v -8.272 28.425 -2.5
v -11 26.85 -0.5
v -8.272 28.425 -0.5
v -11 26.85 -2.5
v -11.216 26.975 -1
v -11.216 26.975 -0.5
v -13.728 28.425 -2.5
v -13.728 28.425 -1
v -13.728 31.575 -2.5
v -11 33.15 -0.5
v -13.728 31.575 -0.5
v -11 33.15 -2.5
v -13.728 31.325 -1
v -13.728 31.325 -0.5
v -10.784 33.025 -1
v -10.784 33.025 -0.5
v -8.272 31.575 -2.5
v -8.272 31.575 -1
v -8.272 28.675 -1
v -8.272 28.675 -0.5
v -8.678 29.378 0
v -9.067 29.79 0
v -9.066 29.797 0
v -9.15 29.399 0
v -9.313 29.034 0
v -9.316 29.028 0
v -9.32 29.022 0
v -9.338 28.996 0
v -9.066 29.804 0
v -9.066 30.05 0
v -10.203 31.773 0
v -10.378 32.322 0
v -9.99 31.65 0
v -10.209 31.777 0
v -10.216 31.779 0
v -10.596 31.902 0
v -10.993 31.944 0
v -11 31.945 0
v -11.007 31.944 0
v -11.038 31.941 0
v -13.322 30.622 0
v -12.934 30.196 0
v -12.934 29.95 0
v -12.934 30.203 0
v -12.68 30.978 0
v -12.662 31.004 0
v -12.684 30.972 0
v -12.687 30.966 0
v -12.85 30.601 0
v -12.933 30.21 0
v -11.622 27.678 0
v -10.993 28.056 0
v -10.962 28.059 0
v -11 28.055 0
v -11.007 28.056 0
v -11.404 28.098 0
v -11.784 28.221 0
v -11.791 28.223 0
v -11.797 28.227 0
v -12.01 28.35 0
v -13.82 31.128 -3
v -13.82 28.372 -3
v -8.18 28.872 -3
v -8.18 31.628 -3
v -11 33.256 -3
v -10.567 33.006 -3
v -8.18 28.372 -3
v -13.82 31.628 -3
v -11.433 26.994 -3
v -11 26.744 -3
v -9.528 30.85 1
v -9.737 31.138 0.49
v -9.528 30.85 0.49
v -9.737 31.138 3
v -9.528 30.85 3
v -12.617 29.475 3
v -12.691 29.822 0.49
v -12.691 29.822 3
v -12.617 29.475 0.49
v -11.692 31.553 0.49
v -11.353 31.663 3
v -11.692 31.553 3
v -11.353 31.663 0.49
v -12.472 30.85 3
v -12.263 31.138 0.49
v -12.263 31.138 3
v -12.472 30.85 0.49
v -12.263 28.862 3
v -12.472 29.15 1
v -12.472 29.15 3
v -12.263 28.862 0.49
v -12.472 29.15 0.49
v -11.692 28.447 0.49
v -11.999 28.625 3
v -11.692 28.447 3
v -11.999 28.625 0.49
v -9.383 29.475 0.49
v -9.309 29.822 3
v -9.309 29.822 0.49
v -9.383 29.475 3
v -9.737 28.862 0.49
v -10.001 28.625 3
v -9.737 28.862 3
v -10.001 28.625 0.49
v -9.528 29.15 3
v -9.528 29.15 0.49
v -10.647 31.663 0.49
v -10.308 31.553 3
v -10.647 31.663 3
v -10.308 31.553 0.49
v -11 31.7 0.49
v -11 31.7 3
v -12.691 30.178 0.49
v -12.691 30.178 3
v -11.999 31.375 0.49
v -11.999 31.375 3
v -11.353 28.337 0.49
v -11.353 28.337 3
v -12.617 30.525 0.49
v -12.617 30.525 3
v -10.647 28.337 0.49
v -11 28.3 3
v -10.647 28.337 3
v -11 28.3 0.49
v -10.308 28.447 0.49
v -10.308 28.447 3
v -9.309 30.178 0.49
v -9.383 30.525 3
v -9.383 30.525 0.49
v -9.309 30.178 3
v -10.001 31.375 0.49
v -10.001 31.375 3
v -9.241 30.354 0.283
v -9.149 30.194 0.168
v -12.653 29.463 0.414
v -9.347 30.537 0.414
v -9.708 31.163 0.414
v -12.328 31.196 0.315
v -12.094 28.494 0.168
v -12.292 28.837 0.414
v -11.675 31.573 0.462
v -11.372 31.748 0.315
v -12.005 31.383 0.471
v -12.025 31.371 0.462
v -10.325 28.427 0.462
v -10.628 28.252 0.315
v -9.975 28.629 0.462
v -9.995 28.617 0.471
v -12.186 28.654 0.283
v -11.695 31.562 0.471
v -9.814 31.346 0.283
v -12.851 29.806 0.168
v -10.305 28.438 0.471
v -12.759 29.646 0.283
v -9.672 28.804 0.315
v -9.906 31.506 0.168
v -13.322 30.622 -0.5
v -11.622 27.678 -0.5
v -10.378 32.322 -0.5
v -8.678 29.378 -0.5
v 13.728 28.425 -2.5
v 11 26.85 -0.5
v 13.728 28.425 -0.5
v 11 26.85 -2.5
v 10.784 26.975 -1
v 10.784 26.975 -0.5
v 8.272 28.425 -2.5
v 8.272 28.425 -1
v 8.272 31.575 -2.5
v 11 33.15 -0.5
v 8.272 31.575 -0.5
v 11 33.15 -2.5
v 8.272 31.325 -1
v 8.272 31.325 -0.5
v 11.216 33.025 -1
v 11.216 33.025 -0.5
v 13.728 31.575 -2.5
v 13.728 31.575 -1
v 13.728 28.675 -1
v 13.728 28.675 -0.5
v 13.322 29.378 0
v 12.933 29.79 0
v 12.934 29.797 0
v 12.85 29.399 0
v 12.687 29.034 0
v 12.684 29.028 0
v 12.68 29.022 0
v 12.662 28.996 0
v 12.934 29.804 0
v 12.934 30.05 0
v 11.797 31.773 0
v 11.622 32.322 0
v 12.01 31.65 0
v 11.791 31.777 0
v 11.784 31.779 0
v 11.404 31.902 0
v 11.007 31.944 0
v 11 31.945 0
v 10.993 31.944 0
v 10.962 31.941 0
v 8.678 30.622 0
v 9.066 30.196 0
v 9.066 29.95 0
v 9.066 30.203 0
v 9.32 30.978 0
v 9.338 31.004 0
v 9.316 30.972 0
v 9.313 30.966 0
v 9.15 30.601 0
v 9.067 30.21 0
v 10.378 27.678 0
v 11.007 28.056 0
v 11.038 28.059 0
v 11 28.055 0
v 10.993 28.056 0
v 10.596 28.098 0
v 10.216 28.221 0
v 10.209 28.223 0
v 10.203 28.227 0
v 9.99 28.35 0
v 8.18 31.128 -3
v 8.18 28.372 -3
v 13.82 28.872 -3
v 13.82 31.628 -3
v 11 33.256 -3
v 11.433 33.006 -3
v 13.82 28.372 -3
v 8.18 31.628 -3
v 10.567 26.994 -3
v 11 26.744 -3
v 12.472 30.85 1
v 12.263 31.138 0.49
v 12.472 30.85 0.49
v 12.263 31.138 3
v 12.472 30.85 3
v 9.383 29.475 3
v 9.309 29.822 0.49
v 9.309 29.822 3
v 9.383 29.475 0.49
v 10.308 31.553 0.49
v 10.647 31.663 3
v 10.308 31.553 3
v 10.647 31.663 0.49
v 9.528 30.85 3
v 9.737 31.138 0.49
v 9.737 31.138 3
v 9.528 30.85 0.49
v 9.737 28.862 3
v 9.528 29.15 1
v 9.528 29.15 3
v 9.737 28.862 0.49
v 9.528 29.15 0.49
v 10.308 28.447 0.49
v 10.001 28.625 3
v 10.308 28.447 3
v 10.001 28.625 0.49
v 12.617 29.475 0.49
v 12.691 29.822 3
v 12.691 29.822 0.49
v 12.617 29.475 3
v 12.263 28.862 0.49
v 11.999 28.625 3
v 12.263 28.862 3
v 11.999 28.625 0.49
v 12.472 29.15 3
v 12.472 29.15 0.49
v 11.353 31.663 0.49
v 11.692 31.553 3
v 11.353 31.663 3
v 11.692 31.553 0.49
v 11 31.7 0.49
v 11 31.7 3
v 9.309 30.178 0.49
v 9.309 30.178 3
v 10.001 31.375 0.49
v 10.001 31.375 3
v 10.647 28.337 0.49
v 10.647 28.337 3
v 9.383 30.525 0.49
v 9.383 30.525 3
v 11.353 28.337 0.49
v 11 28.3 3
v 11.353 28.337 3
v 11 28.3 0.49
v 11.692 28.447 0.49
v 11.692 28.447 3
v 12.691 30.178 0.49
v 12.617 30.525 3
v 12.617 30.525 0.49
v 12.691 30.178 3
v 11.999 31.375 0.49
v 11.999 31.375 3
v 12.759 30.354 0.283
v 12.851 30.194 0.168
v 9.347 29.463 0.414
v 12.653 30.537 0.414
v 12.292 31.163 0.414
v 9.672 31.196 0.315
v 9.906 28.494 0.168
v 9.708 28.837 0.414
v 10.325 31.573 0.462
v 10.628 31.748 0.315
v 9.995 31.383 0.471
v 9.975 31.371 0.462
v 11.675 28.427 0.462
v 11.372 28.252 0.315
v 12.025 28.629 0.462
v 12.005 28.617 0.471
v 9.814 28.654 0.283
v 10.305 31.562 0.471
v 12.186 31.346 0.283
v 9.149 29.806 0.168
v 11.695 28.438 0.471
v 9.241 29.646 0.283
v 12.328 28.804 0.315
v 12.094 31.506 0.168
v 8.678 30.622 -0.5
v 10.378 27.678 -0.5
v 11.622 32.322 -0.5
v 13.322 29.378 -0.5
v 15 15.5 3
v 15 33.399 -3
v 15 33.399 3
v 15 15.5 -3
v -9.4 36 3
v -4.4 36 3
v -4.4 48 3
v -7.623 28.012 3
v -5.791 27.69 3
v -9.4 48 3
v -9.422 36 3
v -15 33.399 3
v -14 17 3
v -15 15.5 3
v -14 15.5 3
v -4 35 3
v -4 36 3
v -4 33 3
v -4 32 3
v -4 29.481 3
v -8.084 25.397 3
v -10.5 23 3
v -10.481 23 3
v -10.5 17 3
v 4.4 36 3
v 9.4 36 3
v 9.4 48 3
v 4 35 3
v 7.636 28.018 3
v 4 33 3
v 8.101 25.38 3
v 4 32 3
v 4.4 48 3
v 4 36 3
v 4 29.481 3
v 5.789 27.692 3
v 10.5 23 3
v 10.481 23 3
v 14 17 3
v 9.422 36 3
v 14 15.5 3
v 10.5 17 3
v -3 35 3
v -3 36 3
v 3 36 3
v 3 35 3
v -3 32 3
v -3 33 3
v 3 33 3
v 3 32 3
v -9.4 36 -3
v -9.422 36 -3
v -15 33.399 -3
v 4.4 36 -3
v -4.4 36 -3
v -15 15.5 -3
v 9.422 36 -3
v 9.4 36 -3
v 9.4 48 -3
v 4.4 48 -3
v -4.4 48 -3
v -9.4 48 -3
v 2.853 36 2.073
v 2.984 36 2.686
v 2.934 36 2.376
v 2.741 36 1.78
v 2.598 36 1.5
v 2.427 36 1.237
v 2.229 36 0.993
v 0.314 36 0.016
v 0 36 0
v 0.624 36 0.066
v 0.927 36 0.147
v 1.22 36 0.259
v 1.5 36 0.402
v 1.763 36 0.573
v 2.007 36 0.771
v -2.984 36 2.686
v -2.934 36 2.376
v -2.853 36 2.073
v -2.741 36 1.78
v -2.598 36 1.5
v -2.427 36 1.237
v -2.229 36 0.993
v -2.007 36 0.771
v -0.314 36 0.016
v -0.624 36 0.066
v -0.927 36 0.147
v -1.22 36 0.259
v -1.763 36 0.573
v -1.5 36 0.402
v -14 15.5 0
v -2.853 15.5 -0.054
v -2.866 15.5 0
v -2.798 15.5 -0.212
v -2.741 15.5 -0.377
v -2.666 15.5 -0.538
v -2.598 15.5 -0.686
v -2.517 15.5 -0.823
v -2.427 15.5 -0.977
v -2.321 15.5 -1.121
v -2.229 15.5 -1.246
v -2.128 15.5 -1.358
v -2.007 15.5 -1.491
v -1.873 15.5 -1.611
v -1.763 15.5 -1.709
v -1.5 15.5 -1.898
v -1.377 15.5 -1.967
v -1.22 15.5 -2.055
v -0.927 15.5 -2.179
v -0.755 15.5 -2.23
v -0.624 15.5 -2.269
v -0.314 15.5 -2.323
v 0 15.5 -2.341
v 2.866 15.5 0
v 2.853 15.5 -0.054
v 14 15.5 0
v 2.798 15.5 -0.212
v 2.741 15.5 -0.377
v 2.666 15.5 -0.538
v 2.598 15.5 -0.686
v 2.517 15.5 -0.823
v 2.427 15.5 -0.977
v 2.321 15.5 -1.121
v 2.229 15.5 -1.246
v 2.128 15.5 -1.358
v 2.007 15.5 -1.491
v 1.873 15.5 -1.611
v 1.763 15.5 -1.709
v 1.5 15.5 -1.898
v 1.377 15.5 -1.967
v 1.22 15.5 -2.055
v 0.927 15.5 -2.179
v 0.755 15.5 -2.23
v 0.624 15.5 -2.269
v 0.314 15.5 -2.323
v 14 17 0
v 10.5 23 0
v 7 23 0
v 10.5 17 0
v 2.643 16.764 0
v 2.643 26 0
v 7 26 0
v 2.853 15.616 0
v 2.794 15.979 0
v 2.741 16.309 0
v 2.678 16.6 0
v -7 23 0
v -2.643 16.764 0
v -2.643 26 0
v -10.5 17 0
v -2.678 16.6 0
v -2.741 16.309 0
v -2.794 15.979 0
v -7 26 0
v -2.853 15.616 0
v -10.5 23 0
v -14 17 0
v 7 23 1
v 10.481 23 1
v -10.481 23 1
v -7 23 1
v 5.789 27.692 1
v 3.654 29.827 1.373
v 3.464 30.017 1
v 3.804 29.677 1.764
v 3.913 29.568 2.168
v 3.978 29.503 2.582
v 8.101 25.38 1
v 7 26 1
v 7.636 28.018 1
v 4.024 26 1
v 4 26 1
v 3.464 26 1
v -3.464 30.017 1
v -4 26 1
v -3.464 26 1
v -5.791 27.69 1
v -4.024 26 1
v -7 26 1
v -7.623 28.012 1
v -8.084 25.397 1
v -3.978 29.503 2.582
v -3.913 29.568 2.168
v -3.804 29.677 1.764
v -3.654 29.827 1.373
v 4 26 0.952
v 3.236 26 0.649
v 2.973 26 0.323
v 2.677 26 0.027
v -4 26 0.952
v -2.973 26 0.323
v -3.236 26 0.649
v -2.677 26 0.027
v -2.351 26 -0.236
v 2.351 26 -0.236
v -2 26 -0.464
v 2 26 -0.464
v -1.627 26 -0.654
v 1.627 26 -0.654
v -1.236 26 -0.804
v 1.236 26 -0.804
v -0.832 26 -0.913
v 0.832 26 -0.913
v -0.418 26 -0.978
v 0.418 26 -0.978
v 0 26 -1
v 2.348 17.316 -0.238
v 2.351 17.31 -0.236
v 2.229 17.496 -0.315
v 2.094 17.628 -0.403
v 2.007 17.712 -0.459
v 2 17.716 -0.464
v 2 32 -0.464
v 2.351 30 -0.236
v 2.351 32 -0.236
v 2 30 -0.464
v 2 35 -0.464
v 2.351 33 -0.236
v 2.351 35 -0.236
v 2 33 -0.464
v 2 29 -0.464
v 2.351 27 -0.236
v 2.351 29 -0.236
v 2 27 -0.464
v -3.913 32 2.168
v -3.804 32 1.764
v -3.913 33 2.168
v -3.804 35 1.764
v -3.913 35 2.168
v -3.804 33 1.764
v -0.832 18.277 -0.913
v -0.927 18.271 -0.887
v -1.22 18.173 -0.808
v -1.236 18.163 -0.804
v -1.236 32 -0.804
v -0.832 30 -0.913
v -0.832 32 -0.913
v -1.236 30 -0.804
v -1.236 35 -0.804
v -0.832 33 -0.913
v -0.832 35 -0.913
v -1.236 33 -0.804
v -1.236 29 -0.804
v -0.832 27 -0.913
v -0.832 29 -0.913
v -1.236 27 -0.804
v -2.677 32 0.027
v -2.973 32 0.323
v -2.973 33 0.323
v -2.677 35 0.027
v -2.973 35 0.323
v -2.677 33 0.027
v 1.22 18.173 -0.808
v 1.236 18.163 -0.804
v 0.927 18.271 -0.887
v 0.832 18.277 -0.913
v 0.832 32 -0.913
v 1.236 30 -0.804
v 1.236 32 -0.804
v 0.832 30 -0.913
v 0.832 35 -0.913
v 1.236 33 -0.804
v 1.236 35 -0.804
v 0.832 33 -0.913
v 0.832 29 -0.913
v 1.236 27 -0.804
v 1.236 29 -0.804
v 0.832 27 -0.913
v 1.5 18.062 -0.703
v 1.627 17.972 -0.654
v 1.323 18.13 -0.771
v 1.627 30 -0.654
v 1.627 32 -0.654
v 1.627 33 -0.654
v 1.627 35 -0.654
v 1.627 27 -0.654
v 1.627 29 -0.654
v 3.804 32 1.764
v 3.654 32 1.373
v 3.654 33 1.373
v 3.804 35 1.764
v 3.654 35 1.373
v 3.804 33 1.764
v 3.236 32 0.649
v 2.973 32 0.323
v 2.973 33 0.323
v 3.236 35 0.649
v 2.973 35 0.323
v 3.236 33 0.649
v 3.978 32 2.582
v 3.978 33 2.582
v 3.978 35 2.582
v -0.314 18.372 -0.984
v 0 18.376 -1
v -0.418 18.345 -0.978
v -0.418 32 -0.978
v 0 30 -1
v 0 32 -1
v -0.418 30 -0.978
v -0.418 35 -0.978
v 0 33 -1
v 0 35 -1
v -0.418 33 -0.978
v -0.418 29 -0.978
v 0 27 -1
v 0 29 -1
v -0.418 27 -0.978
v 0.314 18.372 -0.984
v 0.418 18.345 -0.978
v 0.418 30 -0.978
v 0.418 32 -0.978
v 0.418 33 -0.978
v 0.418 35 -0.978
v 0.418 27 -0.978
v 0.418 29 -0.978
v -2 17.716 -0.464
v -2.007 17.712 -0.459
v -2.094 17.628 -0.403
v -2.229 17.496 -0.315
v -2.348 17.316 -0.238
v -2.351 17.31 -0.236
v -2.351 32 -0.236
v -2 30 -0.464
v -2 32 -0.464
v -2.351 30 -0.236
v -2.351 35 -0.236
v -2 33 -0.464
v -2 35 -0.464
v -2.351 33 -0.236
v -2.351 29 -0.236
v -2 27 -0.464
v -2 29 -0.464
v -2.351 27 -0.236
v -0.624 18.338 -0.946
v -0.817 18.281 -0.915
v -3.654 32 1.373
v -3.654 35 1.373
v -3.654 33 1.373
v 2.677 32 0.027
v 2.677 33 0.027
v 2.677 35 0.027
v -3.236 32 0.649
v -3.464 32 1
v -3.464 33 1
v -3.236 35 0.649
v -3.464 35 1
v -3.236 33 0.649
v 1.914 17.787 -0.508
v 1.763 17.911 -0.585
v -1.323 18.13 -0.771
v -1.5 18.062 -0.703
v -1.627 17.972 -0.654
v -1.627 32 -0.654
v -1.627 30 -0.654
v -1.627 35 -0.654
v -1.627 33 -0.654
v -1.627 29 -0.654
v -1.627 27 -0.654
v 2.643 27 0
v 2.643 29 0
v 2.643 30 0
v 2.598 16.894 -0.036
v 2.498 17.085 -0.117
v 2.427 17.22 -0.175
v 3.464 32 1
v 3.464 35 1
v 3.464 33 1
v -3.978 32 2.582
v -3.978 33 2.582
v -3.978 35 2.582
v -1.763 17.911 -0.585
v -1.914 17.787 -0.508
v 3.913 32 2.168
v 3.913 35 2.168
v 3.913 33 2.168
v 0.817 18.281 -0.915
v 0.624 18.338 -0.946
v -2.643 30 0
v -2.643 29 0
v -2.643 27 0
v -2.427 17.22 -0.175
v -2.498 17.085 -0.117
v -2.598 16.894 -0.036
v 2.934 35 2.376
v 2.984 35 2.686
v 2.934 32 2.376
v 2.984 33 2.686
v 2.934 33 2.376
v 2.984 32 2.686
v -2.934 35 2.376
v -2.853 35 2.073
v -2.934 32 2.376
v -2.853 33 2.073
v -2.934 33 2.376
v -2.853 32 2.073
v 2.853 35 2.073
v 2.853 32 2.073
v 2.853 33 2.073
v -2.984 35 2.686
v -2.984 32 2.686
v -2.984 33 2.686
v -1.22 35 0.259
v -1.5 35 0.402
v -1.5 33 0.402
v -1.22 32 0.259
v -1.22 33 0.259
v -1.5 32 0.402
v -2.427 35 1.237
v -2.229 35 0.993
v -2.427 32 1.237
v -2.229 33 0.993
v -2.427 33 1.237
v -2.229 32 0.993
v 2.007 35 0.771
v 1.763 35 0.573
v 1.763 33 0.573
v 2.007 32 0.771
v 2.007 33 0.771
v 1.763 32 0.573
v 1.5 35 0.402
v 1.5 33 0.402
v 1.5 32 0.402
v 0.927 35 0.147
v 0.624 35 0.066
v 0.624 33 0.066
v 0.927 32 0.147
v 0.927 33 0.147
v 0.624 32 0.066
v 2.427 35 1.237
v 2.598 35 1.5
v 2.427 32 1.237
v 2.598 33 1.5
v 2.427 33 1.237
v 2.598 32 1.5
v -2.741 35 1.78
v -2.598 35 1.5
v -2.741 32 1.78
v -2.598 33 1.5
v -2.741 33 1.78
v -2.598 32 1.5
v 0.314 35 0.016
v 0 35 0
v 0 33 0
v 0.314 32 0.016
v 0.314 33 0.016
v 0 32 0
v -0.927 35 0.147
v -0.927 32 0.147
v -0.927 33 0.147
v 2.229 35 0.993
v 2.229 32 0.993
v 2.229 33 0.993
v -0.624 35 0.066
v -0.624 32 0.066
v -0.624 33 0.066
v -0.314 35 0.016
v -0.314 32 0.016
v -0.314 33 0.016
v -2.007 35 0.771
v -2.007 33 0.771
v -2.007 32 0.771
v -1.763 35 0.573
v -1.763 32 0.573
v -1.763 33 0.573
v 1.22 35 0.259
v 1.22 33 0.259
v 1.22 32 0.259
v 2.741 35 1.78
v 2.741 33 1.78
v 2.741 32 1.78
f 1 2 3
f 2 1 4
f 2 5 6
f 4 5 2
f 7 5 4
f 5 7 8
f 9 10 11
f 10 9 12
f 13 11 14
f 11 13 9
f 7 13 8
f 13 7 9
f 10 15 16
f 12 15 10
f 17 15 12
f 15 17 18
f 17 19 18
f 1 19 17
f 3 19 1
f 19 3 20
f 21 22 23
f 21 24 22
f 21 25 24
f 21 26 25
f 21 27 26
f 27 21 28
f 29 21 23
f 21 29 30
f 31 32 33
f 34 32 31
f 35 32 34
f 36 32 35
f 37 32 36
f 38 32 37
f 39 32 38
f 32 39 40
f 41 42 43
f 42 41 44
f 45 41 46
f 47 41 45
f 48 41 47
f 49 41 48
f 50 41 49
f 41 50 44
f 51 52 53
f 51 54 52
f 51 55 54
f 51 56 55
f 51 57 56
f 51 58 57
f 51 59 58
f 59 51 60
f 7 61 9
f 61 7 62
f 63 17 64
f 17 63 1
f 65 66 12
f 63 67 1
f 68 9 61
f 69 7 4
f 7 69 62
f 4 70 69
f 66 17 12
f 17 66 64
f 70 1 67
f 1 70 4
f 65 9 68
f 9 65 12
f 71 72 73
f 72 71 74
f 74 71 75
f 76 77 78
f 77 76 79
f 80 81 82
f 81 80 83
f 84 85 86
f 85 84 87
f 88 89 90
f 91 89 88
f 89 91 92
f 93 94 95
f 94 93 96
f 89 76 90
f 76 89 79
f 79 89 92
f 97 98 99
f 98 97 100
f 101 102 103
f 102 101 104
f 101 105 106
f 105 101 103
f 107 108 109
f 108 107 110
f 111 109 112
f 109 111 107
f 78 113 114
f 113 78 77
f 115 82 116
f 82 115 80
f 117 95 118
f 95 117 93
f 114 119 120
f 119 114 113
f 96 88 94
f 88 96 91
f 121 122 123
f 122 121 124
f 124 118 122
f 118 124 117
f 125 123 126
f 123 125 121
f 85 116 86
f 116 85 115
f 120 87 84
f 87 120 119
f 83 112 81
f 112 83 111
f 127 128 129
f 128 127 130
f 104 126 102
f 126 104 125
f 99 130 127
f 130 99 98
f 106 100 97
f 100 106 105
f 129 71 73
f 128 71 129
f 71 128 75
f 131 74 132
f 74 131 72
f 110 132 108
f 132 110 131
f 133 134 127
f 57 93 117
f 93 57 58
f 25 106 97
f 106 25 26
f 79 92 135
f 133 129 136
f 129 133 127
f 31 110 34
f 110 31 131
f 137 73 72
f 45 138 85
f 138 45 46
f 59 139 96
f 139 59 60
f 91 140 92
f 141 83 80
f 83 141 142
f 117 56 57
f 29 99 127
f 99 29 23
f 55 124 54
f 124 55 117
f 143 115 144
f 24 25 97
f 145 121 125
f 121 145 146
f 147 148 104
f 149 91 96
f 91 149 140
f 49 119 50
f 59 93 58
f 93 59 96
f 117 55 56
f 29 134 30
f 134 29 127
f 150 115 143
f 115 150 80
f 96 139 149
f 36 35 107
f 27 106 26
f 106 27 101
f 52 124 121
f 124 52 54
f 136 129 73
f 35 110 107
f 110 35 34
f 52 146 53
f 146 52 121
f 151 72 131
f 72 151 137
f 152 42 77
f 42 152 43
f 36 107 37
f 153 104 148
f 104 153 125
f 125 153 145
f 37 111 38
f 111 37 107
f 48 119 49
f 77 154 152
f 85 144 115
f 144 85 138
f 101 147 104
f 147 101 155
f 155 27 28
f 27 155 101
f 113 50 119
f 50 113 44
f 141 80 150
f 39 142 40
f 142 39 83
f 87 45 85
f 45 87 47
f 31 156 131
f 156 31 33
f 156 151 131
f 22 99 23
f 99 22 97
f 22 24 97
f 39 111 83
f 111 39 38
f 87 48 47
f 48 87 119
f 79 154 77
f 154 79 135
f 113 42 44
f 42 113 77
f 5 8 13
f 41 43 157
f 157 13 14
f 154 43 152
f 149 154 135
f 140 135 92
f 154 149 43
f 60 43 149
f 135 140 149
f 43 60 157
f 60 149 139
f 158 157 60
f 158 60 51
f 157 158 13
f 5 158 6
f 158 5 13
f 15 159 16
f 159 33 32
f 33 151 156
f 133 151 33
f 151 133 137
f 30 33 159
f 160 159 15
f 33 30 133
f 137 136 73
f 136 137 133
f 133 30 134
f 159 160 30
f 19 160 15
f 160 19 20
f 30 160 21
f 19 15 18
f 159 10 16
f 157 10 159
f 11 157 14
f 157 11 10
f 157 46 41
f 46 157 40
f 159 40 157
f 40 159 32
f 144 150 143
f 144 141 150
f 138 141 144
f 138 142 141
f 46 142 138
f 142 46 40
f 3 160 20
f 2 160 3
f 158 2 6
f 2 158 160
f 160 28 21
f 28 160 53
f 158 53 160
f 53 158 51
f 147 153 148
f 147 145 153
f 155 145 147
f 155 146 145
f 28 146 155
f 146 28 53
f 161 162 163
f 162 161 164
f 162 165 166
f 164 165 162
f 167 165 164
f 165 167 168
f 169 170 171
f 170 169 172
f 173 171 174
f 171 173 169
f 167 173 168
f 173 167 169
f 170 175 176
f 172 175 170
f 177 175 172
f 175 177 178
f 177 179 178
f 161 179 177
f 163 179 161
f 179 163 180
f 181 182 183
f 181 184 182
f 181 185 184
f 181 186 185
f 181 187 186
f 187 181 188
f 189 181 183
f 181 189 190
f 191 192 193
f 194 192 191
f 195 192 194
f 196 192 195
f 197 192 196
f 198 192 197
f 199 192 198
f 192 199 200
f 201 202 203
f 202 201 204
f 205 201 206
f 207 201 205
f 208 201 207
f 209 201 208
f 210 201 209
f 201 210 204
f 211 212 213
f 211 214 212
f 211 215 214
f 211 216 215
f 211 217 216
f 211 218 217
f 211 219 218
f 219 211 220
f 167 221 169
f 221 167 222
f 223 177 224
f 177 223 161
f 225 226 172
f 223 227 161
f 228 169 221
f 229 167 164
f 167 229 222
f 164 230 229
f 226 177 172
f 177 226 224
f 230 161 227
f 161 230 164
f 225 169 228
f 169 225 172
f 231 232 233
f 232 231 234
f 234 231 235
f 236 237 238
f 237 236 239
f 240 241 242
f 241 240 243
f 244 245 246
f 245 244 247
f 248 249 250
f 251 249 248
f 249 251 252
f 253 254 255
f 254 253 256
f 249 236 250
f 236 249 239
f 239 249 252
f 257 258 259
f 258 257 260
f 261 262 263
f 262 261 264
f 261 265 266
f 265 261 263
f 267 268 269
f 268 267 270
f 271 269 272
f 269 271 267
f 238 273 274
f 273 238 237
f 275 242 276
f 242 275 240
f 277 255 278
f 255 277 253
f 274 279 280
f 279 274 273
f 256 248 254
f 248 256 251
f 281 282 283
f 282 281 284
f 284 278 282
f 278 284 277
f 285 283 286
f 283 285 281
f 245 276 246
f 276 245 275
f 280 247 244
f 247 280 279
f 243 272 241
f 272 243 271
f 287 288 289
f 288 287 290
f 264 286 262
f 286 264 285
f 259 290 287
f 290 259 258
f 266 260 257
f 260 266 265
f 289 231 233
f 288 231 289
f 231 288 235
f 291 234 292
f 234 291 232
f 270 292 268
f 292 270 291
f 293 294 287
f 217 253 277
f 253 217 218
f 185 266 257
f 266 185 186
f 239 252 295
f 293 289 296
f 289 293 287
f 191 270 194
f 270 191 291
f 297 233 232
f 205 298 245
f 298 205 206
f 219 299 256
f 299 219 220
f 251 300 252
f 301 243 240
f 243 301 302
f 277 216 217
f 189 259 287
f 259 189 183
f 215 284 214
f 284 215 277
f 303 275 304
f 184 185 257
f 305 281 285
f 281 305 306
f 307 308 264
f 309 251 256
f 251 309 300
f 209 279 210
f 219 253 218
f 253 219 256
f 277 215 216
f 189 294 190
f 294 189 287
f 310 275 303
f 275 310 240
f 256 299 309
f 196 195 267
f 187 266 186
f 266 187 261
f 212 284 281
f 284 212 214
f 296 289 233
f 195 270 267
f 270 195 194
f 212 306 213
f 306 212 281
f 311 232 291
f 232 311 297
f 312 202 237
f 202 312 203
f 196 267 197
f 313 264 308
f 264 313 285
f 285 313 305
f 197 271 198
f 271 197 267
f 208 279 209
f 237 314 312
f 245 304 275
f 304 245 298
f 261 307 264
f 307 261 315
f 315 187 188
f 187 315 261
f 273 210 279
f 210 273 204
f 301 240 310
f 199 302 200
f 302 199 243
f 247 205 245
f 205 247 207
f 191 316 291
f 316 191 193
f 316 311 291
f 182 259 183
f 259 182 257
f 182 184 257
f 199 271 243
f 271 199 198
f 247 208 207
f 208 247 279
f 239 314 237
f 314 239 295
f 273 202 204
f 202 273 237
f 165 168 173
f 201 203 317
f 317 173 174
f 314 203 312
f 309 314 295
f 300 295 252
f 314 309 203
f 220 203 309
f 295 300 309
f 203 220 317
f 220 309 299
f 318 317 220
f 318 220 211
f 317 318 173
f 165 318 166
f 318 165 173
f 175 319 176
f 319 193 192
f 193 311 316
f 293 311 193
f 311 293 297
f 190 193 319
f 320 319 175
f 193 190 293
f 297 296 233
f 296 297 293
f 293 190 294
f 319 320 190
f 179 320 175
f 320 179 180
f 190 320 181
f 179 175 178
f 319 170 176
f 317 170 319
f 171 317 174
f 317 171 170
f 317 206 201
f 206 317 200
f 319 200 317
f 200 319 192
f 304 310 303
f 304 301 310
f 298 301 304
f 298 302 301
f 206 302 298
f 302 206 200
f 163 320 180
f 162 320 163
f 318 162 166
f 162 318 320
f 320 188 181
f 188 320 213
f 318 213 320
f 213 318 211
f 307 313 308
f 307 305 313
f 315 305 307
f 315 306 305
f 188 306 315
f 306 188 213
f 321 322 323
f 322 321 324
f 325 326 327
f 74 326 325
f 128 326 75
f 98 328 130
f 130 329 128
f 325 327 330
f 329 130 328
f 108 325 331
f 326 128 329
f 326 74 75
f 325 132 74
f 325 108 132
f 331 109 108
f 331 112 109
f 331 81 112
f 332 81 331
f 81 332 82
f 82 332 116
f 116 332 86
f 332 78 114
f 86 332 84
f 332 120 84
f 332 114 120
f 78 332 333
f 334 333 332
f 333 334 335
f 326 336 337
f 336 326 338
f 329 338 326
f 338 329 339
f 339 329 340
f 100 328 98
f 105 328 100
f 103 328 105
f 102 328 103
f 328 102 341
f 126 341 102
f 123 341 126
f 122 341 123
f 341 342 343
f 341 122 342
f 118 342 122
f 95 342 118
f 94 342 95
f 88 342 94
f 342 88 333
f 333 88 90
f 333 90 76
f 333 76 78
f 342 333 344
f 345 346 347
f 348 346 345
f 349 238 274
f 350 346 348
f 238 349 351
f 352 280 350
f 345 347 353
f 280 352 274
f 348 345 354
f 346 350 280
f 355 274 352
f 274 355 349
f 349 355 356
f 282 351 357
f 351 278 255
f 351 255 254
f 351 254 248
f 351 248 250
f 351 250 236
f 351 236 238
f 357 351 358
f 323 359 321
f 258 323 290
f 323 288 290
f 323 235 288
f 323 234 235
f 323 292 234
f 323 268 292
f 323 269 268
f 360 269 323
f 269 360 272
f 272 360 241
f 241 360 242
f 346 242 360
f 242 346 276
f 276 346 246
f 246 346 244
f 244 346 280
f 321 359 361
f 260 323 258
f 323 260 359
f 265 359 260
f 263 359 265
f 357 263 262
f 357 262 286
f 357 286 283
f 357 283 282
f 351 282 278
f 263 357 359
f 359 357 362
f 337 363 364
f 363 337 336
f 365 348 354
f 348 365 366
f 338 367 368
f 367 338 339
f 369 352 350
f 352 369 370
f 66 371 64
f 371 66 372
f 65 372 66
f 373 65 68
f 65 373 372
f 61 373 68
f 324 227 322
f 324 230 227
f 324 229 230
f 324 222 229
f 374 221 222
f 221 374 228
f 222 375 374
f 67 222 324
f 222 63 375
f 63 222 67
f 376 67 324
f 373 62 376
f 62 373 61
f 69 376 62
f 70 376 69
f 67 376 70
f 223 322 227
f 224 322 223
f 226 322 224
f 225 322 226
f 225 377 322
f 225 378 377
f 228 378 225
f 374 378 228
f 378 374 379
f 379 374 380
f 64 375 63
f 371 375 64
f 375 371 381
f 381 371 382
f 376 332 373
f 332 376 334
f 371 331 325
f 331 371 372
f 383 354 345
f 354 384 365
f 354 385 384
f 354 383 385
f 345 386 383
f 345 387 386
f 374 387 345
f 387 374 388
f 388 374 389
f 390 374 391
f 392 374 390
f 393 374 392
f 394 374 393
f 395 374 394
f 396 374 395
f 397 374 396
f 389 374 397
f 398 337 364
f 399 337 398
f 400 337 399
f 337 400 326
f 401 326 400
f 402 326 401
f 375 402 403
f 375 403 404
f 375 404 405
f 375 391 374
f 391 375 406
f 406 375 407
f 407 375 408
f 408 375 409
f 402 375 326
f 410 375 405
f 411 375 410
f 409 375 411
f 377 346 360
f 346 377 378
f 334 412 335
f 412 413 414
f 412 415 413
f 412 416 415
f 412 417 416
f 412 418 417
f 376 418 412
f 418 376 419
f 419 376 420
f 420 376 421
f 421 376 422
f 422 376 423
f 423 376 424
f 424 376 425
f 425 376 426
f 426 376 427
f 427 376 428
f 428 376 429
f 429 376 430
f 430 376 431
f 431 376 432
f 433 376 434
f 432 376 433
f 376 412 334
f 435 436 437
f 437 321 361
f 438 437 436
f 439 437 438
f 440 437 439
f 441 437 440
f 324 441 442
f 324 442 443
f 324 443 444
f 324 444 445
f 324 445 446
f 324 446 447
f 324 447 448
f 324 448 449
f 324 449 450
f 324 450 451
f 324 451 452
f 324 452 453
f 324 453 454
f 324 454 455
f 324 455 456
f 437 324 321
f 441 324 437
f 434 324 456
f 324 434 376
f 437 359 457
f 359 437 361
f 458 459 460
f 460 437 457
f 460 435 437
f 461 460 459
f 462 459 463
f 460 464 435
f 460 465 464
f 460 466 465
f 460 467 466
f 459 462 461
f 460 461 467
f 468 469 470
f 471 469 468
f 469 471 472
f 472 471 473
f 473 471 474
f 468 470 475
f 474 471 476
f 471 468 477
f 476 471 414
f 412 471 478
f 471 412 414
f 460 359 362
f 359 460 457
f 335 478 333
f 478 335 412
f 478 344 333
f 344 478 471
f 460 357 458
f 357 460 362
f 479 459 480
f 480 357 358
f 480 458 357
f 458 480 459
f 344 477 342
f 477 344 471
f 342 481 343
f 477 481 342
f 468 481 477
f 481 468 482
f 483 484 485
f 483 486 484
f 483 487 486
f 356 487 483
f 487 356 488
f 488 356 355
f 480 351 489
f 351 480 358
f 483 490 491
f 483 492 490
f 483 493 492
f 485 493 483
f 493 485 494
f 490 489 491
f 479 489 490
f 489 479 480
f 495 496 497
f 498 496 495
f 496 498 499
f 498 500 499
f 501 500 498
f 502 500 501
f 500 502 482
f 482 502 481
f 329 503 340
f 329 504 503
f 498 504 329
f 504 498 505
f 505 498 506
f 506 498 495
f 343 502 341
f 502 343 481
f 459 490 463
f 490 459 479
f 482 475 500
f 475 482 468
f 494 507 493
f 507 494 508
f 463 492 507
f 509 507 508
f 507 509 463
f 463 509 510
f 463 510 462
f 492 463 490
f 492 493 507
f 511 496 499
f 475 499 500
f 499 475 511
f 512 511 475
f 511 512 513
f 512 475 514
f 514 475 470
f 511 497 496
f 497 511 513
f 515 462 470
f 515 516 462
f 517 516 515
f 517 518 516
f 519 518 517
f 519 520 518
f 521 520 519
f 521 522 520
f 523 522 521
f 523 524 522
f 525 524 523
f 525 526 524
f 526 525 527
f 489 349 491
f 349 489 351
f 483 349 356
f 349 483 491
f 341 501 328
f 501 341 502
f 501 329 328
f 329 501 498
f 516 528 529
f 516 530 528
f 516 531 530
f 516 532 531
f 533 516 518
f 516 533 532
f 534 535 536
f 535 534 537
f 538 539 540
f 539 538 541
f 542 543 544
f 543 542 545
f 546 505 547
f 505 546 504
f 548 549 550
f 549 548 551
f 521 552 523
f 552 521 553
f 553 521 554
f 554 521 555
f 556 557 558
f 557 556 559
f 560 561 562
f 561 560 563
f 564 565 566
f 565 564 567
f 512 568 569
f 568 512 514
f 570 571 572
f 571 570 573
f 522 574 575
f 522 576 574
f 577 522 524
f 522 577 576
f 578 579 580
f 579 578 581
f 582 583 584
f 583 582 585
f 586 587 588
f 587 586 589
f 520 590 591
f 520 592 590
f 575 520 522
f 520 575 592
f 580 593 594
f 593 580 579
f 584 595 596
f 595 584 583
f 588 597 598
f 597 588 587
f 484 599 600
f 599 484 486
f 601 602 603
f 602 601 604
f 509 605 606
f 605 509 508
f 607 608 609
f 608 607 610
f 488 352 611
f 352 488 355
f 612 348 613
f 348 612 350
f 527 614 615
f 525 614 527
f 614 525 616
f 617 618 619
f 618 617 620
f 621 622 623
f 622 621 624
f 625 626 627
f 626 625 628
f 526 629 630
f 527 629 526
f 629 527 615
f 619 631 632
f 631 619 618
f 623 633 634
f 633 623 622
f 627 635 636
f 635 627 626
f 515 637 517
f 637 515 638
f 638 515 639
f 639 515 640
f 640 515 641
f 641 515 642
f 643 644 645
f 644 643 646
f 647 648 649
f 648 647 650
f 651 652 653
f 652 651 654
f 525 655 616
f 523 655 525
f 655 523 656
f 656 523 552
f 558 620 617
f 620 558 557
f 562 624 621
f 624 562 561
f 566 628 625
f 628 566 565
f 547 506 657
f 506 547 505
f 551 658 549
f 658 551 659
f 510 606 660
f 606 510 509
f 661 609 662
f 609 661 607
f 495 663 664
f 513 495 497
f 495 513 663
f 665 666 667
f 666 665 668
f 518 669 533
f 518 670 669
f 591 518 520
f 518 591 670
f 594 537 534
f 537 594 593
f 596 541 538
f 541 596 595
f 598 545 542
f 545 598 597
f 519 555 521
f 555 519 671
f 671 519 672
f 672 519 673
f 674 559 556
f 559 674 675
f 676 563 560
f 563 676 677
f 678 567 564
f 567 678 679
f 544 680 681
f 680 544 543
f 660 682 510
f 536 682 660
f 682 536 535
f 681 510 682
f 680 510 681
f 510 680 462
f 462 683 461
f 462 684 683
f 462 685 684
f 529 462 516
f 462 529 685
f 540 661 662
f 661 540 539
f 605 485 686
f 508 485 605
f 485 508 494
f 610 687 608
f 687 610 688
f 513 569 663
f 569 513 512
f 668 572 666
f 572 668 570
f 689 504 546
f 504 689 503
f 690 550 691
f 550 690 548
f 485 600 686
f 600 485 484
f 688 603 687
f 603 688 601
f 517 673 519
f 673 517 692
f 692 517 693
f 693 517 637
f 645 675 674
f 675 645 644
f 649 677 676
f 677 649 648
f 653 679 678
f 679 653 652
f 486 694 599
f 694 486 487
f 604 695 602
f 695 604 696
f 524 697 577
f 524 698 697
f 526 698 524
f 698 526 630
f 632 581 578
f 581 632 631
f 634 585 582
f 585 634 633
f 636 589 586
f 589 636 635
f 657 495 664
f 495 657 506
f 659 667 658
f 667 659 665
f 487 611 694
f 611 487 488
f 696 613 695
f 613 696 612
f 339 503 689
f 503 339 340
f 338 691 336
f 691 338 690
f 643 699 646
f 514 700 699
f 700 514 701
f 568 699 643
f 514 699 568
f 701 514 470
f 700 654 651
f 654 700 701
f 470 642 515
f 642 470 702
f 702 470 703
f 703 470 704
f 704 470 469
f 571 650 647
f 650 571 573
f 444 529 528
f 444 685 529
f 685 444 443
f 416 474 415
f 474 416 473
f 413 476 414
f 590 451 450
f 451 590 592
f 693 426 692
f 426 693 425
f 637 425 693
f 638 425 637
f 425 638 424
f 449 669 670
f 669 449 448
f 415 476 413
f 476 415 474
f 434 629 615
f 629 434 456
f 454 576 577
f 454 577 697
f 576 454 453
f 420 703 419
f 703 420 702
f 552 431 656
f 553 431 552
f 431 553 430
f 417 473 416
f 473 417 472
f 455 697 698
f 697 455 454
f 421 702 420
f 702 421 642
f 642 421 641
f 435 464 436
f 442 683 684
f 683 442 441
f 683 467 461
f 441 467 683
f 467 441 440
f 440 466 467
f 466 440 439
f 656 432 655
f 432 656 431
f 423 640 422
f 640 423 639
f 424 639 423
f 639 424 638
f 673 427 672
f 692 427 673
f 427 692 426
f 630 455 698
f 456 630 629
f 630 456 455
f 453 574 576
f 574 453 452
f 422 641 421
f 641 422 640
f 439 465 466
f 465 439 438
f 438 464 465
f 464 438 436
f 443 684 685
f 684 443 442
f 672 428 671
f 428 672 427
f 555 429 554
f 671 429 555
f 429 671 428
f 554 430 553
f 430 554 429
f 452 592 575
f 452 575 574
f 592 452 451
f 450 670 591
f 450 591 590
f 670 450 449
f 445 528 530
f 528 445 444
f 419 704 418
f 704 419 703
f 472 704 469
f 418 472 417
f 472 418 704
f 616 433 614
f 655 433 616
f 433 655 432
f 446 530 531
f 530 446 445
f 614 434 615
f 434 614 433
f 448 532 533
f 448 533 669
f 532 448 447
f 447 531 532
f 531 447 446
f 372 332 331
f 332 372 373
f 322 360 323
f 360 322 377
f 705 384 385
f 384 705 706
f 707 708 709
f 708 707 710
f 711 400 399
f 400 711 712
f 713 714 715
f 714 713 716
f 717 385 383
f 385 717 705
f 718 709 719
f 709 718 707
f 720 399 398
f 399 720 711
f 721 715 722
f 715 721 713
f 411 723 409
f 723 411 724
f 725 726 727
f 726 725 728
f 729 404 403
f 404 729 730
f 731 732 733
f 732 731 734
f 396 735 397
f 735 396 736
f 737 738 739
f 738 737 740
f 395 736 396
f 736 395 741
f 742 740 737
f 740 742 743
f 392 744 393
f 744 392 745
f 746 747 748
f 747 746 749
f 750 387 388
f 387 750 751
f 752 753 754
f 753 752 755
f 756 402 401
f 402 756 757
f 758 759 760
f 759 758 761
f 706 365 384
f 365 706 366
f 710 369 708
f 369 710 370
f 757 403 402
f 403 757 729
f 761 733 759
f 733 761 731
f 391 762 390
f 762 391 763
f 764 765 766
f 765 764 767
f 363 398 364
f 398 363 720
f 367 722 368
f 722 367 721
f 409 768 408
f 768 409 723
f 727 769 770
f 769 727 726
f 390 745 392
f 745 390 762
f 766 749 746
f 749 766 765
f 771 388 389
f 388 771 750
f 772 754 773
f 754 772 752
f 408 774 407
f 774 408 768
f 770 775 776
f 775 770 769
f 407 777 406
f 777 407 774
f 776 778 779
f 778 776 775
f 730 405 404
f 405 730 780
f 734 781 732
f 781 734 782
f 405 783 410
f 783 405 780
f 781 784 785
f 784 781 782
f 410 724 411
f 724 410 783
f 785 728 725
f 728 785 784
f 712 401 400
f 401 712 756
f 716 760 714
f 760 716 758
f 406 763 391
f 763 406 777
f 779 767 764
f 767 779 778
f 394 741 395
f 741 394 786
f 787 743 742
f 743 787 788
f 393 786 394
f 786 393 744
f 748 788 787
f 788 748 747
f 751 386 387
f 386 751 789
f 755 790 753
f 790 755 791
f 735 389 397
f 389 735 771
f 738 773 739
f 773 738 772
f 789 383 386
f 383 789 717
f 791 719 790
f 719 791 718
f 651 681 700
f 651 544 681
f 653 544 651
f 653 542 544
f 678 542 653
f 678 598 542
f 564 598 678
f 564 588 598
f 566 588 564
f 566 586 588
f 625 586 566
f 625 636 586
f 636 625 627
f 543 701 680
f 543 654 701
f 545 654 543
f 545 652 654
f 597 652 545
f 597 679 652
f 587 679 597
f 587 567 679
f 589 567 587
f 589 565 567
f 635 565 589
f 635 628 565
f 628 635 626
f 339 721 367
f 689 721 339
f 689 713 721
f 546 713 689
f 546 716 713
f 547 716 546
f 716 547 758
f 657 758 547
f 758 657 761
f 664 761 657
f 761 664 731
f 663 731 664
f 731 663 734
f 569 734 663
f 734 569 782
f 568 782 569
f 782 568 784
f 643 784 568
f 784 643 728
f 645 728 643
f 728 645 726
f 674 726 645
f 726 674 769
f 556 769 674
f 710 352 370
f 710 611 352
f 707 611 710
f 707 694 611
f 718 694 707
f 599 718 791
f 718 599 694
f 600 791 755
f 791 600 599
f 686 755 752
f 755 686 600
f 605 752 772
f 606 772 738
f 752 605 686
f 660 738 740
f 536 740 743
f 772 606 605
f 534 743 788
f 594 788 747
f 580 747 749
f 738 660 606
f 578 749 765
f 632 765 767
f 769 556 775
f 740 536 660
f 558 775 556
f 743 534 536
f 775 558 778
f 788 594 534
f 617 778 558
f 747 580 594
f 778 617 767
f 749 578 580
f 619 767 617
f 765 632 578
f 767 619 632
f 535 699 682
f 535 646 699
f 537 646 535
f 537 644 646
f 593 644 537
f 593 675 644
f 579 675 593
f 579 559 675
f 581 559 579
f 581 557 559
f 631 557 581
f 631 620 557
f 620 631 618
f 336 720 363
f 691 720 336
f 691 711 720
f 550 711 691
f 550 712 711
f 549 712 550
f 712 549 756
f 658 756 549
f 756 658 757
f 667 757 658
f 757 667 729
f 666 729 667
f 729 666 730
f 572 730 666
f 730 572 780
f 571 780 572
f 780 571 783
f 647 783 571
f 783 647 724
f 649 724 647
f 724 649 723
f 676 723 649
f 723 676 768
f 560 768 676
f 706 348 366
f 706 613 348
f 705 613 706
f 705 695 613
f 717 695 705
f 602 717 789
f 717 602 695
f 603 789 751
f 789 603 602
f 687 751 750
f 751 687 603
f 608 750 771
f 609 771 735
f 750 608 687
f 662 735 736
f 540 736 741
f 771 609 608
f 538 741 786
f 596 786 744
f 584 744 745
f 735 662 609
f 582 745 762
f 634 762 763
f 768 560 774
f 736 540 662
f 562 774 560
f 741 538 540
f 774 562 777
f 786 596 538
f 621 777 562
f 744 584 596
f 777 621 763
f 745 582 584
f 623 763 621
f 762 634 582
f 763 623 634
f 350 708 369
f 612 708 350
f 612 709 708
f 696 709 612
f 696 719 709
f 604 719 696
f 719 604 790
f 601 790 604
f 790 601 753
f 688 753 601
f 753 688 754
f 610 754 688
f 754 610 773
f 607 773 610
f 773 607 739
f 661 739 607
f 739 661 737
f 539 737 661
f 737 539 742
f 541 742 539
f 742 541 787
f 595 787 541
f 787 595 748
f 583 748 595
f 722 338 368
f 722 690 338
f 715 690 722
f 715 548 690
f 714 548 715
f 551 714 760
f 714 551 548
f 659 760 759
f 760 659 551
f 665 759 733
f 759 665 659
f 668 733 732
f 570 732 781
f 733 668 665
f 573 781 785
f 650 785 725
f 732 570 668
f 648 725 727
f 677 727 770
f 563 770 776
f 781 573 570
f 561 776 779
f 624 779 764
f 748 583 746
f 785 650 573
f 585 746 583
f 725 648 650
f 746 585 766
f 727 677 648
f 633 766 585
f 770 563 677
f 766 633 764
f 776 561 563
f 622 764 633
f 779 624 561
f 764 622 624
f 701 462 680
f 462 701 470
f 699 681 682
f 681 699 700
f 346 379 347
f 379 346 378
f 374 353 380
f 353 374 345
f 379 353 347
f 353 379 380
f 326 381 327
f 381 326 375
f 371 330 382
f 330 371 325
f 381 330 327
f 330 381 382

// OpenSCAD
// PRUSA iteration4
// Heatbed cable cover clip MK3S
// GNU GPL v3
// Josef Průša <iam@josefprusa.cz> and contributors
// http://www.reprap.org/wiki/Prusa_Mendel
// http://prusamendel.org


module m3_nut()
{
    difference()
    {
        union()
        {
            cylinder( h = 4, r = 3.15, $fn=6);  
            translate([0,0,2.5]) cylinder( h = 4, r1 = 3.15, r2=4,$fn=6);  
            translate([0,0,-9])  cylinder( h = 12, r = 1.7, $fn=30);  
            translate([0,0,-0.49]) cylinder( h = 0.5, r1 = 1.7, r2=1.95,$fn=30);  
        }
        translate([1.7,-5,-1]) cube([5,10,2]); 
        translate([-6.7,-5,-1]) cube([5,10,2]); 
        
        translate([-5,1.7,-1.5]) cube([10,5,2]); 
        translate([-5,-6.7,-1.5]) cube([10,5,2]); 
        
    }
}

/**
* These protusions prevent cable breakage in the event of the build platform colliding
* with an object behind the printer. Hours of wasted life will be saved :)
*
* square collision ends allow a solid easily detected hit and will not cause the 
* machine to jump up or down. 
**/
module cable_break_preventer() 
{
    z_offset = -3;
    center_offset = 4.4;
    block_length = 12;
    block_width = 5;
    block_height = 6;
    
    translate([center_offset, 20.5 + 15.5, z_offset])
    cube([block_width, block_length, block_height]);

    translate([-block_width - center_offset, 20.5 + 15.5, z_offset])
    cube([block_width, block_length, block_height]);
    
}

module clip()
{
    difference()
    {
        // base body
        translate([-15,15.5,-3]) cube([30,20.5,6]); 
        
        // inner angled cut
        translate([3.5,2,0]) rotate([0,0,0])  cube([10.5,15,6]);
        translate([-14,2,0]) rotate([0,0,0])  cube([10.5,15,6]);
        
        translate([3.5,15,0]) rotate([0,0,0])  cube([7,8,6]);
        translate([-10.5,15,0]) rotate([0,0,0])  cube([7,8,6]);
       
        translate([6.96,19.45,1]) rotate([0,0,45])  cube([5,10,6]);
        translate([-6.96,19.45,1]) rotate([0,0,45])  cube([10,5,6]); 
        
        translate([-0,37,3]) rotate([90,0,0]) cylinder(h = 17, r=3.5, $fn=60);
            
        translate([-7,15,0]) rotate([0,0,0])  cube([14,11,6]);
       
        translate([3,14,1]) rotate([0,0,10])  cube([7,13,6]);
        translate([-9.88,15.21,1]) rotate([0,0,-10])  cube([7,13,6]); 
        
        // cables cut
        translate([-0,36,3]) rotate([90,0,0]) cylinder(h = 187, r=4, $fn=60); 
       
        translate([-11,30,0]) rotate([0,180,30]) m3_nut();
        translate([11,30,0]) rotate([0,180,30]) m3_nut();
       
        // thermistor cable entry
        translate([-0,22,4]) rotate([115,0,0]) cylinder(h = 15, r=3, $fn=60);     
    
    
        // edges  
        translate([-18.0,32,-5]) rotate([0,0,25])  cube([11,11,15]);
        translate([18,32,-5]) rotate([0,0,65])  cube([11,11,15]);
     
    }
    
    // cable rims
    difference()
    {
        difference()
        {
            translate([-0,36,3]) rotate([90,0,0]) cylinder(h = 10, r=4.5, $fn=60); 
            translate([-0,37,3]) rotate([90,0,0]) cylinder(h = 17, r=3, $fn=60);
            
        }
        translate([-15,18,3]) cube([30,20,6]);    
        translate([-15,27,-5]) cube([30,2,16]);    
        translate([-15,30,-5]) cube([30,2,16]);    
        translate([-15,33,-5]) cube([30,2,16]); 
        translate([6.96,19.45,1]) rotate([0,0,45])  cube([5,10,6]);
        translate([-6.96,19.45,1]) rotate([0,0,45])  cube([10,5,6]); 
        translate([-4,20,0]) rotate([0,0,0])  cube([8,11,6]); 
        
    }
       
}

clip();
cable_break_preventer();
